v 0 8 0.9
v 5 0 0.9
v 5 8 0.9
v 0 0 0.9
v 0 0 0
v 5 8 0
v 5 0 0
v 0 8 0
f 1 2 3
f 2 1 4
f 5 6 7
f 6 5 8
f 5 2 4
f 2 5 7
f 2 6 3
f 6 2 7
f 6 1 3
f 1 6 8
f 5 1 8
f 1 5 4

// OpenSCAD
/* Warning, this is a very basic generator with a lot of approximation 
input data : [VQFN, 3AW, 5x8x0.9mm, 22, , A, C04-00558A]
generated by com.zoubworld.electronics.cad.model3d.Basic
Date : Sun Feb 15 10:50:49 CET 2026
*/

//body
color("black")
translate([0,0,0])
cube([5.0,8.0,0.9], center=false);
